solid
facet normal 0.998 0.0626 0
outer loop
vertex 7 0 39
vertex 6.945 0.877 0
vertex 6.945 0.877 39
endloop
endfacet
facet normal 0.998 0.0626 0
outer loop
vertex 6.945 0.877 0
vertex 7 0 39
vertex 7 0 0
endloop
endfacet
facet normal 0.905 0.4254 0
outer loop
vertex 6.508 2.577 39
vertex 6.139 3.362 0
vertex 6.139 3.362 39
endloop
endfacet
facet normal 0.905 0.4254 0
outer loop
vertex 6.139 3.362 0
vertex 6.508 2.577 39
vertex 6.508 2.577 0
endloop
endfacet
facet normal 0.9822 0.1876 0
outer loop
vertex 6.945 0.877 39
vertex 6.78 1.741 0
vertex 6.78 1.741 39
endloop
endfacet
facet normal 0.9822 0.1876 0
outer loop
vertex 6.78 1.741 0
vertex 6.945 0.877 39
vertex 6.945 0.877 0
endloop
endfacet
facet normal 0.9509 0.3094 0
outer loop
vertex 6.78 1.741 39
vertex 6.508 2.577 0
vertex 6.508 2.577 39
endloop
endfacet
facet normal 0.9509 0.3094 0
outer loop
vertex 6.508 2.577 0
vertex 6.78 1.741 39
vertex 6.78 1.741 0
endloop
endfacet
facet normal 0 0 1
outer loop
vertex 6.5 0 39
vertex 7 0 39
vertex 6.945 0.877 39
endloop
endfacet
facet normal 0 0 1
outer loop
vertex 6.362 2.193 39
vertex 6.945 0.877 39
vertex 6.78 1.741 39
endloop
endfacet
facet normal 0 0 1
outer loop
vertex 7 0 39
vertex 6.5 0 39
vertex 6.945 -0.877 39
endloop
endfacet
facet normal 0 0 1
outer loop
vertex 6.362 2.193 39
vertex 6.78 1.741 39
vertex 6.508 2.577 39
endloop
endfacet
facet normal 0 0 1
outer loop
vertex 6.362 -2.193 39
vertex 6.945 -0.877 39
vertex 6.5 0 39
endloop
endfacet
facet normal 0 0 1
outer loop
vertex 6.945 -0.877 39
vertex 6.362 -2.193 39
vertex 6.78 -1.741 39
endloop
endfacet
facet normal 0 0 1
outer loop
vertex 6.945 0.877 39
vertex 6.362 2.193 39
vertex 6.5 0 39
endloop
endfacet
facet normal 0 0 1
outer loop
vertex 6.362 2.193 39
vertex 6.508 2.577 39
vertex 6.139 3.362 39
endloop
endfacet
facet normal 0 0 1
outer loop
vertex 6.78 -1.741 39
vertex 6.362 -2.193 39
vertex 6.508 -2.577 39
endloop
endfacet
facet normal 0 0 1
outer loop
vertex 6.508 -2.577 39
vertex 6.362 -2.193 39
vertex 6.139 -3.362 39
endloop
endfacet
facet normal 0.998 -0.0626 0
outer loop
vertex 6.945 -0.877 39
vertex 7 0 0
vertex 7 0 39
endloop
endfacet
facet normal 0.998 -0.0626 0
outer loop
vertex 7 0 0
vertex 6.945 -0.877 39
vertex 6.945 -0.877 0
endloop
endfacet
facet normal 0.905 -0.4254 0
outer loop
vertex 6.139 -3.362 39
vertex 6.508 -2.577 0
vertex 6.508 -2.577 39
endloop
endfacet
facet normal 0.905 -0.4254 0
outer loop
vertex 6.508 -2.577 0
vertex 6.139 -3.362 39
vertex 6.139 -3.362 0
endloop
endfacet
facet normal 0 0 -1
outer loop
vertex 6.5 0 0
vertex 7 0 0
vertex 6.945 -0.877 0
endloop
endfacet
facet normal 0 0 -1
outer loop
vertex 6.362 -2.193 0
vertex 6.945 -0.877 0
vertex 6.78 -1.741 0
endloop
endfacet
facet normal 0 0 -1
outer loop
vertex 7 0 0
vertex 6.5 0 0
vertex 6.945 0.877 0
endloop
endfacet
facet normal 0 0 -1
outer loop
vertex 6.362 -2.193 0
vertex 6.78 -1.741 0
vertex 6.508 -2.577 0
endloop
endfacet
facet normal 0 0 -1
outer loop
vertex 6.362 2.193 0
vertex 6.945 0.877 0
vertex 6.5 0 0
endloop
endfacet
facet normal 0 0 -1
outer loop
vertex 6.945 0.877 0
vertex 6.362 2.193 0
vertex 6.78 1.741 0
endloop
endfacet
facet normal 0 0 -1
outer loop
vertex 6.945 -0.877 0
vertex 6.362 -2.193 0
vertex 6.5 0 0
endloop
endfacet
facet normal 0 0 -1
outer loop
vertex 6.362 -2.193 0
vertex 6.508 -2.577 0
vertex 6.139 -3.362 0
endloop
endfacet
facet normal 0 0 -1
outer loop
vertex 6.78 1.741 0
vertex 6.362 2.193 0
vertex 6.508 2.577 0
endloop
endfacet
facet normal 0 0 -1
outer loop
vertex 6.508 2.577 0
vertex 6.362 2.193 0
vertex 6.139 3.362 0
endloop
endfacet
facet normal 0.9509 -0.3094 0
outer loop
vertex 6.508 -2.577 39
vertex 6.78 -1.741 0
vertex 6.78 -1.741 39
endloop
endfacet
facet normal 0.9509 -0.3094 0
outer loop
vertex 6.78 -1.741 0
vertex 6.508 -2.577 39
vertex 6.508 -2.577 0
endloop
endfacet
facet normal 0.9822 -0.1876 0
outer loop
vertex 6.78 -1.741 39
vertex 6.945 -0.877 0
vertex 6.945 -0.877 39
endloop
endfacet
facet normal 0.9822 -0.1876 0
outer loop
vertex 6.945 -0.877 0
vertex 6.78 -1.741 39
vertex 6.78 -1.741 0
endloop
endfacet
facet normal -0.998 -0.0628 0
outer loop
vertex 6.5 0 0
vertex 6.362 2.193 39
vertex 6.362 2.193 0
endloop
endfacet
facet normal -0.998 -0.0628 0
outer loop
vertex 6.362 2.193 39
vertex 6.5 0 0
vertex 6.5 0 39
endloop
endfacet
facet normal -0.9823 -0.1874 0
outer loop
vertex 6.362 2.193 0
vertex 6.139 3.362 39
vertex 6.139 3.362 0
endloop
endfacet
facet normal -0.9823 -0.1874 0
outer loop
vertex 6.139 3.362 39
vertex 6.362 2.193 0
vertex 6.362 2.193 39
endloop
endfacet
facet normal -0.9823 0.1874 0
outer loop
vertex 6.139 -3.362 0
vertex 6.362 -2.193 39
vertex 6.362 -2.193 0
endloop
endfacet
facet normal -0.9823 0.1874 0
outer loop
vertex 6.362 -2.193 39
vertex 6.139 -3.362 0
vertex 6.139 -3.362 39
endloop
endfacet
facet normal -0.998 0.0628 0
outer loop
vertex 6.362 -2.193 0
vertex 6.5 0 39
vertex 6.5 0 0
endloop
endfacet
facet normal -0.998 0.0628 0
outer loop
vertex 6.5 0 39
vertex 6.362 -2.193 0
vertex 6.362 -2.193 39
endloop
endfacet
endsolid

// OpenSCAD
$fn = 50;


difference() {
	union() {
		cylinder(h = 39, r = 7.0000000000);
		translate(v = [-14.0000000000, 0, 0]) {
			cylinder(h = 39, r = 7.0000000000);
		}
	}
	union() {
		cylinder(h = 39, r = 3.2500000000);
		cylinder(h = 39, r = 1.8000000000);
		cylinder(h = 39, r = 1.8000000000);
		cylinder(h = 39, r = 1.8000000000);
		translate(v = [-18.5000000000, 0, 0]) {
			hull() {
				translate(v = [-3.7500000000, 0.0000000000, 0]) {
					cylinder(h = 39, r = 7.5000000000);
				}
				translate(v = [3.7500000000, 0.0000000000, 0]) {
					cylinder(h = 39, r = 7.5000000000);
				}
				translate(v = [-3.7500000000, -0.0000000000, 0]) {
					cylinder(h = 39, r = 7.5000000000);
				}
				translate(v = [3.7500000000, -0.0000000000, 0]) {
					cylinder(h = 39, r = 7.5000000000);
				}
			}
		}
		translate(v = [-11.0000000000, 0, 0.0000000000]) {
			cylinder(h = 39, r = 17.5000000000);
		}
	}
}
